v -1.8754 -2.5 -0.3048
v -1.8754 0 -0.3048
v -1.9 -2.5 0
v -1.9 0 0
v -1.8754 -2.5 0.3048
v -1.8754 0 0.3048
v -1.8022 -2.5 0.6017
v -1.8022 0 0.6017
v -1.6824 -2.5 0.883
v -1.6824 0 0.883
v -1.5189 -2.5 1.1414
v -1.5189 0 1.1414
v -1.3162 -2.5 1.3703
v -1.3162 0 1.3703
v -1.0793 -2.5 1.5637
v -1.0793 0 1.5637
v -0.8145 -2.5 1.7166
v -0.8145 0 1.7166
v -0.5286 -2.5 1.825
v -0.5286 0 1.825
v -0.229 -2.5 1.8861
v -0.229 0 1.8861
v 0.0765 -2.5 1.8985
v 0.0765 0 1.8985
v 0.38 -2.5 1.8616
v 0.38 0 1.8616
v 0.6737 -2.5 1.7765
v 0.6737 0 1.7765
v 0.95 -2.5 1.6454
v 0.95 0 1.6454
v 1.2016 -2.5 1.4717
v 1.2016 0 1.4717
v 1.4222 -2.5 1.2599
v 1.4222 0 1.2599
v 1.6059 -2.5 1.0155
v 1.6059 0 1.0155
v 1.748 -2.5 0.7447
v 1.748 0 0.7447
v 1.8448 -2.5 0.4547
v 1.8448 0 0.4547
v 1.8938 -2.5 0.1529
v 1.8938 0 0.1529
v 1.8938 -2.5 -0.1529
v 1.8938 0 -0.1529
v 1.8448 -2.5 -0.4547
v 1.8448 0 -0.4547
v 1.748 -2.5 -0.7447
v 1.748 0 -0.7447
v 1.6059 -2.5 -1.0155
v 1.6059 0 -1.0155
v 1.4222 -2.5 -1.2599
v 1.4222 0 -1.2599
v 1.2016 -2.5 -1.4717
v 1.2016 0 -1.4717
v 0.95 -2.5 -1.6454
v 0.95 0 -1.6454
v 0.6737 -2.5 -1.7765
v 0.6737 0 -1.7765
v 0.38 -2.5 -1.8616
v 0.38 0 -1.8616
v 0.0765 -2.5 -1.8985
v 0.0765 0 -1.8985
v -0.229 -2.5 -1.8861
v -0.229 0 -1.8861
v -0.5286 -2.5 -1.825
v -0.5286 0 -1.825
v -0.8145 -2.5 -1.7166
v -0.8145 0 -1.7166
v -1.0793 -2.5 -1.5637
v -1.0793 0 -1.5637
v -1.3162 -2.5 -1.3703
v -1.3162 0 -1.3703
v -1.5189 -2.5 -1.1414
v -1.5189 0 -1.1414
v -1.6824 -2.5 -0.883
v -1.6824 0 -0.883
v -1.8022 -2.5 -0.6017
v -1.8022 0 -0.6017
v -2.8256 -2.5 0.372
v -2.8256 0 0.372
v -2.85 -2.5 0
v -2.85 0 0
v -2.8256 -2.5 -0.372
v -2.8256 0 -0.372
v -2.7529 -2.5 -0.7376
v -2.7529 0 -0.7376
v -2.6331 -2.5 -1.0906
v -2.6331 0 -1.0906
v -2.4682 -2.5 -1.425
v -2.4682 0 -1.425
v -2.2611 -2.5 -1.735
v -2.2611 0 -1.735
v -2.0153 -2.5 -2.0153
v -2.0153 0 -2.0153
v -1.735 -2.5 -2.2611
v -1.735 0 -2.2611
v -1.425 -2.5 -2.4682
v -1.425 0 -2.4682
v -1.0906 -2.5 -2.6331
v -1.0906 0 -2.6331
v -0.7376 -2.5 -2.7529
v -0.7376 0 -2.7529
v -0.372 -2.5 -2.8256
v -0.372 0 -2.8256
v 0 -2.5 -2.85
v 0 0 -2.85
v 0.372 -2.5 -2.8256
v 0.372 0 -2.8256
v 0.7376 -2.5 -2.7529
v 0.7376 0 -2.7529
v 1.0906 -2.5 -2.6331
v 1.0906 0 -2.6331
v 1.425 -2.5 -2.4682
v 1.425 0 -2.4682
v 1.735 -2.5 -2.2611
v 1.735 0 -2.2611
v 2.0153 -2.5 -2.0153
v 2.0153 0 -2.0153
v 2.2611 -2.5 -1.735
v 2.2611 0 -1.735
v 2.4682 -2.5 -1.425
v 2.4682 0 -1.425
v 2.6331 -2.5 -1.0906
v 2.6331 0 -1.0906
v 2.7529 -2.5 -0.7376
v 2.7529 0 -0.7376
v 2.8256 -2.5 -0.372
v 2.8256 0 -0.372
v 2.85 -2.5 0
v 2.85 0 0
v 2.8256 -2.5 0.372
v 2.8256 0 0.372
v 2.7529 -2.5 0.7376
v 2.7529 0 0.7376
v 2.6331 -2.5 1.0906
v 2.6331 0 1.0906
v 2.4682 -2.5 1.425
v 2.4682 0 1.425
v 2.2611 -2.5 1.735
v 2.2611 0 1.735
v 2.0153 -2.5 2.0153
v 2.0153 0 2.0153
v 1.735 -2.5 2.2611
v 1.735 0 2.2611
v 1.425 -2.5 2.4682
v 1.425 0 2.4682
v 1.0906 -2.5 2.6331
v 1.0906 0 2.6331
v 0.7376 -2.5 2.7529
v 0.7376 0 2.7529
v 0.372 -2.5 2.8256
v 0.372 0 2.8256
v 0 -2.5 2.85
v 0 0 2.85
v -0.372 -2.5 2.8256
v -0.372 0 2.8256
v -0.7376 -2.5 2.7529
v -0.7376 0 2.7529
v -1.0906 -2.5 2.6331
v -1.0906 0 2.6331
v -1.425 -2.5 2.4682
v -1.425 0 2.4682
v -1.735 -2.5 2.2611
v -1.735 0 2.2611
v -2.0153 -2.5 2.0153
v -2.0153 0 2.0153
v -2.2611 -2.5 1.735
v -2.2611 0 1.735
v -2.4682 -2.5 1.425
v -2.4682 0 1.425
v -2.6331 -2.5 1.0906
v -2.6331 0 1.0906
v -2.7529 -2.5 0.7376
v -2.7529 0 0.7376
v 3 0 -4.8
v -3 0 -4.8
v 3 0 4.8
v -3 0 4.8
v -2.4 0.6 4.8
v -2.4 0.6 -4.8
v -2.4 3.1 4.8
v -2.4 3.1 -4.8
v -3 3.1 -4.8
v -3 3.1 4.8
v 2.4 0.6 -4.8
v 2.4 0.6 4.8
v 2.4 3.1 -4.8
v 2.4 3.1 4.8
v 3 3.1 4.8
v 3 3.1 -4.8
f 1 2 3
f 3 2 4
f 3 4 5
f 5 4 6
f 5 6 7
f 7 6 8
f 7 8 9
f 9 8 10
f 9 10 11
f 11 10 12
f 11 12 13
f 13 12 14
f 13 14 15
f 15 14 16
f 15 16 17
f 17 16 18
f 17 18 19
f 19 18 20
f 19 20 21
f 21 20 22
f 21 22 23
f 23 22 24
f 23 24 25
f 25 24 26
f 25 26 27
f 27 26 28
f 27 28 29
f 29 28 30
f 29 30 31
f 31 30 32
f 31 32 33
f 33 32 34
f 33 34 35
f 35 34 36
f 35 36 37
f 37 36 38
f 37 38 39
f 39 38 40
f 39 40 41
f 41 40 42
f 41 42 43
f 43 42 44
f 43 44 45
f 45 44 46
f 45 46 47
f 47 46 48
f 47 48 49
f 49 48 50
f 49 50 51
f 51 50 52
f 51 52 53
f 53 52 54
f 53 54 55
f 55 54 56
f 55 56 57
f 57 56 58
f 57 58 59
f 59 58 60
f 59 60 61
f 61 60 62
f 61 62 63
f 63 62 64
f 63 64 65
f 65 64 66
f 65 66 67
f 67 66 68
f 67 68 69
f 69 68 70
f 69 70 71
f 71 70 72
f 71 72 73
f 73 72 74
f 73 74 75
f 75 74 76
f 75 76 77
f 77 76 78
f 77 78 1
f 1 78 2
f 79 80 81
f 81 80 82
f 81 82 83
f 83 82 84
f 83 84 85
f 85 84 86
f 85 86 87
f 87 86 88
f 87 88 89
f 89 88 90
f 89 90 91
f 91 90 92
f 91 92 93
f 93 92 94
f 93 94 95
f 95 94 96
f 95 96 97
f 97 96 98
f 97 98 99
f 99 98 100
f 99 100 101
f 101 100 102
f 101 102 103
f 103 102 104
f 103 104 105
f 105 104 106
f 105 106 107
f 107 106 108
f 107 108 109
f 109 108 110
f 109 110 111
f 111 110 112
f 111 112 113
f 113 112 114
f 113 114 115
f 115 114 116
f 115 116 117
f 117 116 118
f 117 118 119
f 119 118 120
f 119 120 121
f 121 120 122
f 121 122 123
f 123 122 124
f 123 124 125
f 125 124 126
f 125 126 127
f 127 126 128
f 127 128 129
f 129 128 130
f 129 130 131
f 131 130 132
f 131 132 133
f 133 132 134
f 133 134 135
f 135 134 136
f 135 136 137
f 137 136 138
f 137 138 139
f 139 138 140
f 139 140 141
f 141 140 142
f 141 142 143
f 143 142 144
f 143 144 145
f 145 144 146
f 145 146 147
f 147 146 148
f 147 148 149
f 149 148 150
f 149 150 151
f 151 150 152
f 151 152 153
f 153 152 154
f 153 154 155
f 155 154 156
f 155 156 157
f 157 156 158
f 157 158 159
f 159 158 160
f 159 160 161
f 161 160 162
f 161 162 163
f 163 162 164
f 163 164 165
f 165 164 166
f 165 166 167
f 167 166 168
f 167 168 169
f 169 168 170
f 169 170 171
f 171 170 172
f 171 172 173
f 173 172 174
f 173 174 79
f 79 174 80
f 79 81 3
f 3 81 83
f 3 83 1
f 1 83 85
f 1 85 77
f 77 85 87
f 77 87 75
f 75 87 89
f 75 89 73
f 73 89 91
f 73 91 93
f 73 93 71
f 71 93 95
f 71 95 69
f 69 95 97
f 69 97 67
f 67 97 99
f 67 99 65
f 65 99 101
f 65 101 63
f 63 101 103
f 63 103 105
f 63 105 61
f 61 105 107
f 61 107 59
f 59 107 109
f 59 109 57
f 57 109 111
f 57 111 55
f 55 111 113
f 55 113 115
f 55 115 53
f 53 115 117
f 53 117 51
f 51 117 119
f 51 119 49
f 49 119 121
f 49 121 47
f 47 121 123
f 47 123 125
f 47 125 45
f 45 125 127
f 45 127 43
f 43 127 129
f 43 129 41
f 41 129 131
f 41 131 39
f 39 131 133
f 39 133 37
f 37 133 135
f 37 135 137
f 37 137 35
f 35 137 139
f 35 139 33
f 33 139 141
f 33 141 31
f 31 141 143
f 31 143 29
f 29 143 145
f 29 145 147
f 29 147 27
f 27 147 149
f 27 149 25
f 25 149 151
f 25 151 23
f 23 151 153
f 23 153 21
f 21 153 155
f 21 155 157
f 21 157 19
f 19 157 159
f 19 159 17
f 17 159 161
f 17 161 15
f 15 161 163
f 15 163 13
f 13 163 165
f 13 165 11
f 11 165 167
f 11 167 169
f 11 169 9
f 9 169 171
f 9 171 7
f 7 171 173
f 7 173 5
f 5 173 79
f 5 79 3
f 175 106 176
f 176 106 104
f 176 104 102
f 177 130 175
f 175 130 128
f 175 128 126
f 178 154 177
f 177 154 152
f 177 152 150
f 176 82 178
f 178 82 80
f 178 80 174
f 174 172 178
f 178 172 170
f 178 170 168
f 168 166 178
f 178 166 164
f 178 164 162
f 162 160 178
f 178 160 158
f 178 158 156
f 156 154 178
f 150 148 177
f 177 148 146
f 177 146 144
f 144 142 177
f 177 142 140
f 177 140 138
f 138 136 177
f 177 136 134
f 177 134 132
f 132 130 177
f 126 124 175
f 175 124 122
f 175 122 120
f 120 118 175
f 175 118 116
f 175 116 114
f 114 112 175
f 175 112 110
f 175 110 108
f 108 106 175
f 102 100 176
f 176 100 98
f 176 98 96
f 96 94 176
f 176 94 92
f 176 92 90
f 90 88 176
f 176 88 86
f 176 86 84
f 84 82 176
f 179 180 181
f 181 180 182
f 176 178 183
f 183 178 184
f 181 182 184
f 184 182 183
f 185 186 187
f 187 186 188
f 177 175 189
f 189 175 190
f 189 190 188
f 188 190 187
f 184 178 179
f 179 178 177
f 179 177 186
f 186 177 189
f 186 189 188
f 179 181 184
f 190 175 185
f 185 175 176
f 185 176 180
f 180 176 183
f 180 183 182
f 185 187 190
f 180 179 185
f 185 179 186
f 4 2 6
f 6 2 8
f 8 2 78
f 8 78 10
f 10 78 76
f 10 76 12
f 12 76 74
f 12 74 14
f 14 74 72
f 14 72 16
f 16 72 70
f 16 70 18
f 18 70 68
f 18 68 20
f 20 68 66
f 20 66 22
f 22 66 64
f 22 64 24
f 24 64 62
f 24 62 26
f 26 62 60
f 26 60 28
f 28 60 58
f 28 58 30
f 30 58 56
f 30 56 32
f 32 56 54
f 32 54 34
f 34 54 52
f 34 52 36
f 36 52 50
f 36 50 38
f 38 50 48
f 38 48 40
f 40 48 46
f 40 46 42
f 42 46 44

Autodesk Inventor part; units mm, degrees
ref_plane "YZ Plane" through (0, 0, 0) normal (1, 0, 0) x (0, 1, 0)
ref_plane "XZ Plane" through (0, 0, 0) normal (0, 1, 0) x (-1, 0, 0)
ref_plane "XY Plane" through (0, 0, 0) normal (0, 0, 1) x (1, 0, 0)
sketch "스케치1" plane through (0, 0, 0) normal (0, 1, 0) x (-1, 0, 0)
  line L0 (-2.4, 4.8) -> (2.4, 4.8)
  line L1 (2.4, 4.8) -> (2.4, -4.8)
  line L2 (2.4, -4.8) -> (-2.4, -4.8)
  line L3 (-2.4, -4.8) -> (-2.4, 4.8)
  line L4 (-2.4, 4.8) -> (2.4, -4.8) construction
  line L5 (2.4, 4.8) -> (-2.4, -4.8) construction
  circle A0 centre (0, 0) radius 2.85
  circle A1 centre (0, 0) radius 1.9
  dimension "d0" = 4.8
  dimension "d1" = 9.6
  dimension "d17" = 5.7
  dimension "d18" = 3.8
extrude "돌출1" add sketch "스케치1" along normal blind 0.6 contours L0 L1 A0 L3 | A0 L1 L3 | A0 L1 L2 L3 | A1
sketch "스케치2" plane through (0, 0, 0) normal (0, -1, 0) x (1, 0, 0)
  line L0 (2.4, -4.8) -> (-2.4, -4.8) projected
  line L1 (2.4, 4.8) -> (2.4, -4.8) projected
  line L2 (-2.4, 4.8) -> (2.4, 4.8) projected
  line L3 (-2.4, -4.8) -> (-2.4, 4.8) projected
  line L4 (2.4, 4.8) -> (3, 4.8)
  line L5 (3, 4.8) -> (3, -4.8)
  line L6 (3, -4.8) -> (2.4, -4.8)
  line L7 (2.4, -4.8) -> (2.4, 4.8)
  line L8 (-2.4, -4.8) -> (-2.4, 4.8) projected
  line L9 (-2.4, 4.8) -> (-3, 4.8)
  line L10 (-3, 4.8) -> (-3, -4.8)
  line L11 (-3, -4.8) -> (-2.4, -4.8)
  line L12 (-2.4, -4.8) -> (-2.4, 4.8)
  point P0 (0, 0)
  dimension "d4" = 0.6
  dimension "d5" = 0.6
extrude "돌출2" add sketch "스케치2" against normal blind 3.1 contours L1 L4 L5 L6 | L11 L10 L9 L3
extrude "돌출5" add sketch "스케치1" against normal blind 2.5 contours A0 L1 L3 | L3 A0 | A0 L1
properties part number "endcap_4mm_2ea_typeB_ver2_onyx_addon"
